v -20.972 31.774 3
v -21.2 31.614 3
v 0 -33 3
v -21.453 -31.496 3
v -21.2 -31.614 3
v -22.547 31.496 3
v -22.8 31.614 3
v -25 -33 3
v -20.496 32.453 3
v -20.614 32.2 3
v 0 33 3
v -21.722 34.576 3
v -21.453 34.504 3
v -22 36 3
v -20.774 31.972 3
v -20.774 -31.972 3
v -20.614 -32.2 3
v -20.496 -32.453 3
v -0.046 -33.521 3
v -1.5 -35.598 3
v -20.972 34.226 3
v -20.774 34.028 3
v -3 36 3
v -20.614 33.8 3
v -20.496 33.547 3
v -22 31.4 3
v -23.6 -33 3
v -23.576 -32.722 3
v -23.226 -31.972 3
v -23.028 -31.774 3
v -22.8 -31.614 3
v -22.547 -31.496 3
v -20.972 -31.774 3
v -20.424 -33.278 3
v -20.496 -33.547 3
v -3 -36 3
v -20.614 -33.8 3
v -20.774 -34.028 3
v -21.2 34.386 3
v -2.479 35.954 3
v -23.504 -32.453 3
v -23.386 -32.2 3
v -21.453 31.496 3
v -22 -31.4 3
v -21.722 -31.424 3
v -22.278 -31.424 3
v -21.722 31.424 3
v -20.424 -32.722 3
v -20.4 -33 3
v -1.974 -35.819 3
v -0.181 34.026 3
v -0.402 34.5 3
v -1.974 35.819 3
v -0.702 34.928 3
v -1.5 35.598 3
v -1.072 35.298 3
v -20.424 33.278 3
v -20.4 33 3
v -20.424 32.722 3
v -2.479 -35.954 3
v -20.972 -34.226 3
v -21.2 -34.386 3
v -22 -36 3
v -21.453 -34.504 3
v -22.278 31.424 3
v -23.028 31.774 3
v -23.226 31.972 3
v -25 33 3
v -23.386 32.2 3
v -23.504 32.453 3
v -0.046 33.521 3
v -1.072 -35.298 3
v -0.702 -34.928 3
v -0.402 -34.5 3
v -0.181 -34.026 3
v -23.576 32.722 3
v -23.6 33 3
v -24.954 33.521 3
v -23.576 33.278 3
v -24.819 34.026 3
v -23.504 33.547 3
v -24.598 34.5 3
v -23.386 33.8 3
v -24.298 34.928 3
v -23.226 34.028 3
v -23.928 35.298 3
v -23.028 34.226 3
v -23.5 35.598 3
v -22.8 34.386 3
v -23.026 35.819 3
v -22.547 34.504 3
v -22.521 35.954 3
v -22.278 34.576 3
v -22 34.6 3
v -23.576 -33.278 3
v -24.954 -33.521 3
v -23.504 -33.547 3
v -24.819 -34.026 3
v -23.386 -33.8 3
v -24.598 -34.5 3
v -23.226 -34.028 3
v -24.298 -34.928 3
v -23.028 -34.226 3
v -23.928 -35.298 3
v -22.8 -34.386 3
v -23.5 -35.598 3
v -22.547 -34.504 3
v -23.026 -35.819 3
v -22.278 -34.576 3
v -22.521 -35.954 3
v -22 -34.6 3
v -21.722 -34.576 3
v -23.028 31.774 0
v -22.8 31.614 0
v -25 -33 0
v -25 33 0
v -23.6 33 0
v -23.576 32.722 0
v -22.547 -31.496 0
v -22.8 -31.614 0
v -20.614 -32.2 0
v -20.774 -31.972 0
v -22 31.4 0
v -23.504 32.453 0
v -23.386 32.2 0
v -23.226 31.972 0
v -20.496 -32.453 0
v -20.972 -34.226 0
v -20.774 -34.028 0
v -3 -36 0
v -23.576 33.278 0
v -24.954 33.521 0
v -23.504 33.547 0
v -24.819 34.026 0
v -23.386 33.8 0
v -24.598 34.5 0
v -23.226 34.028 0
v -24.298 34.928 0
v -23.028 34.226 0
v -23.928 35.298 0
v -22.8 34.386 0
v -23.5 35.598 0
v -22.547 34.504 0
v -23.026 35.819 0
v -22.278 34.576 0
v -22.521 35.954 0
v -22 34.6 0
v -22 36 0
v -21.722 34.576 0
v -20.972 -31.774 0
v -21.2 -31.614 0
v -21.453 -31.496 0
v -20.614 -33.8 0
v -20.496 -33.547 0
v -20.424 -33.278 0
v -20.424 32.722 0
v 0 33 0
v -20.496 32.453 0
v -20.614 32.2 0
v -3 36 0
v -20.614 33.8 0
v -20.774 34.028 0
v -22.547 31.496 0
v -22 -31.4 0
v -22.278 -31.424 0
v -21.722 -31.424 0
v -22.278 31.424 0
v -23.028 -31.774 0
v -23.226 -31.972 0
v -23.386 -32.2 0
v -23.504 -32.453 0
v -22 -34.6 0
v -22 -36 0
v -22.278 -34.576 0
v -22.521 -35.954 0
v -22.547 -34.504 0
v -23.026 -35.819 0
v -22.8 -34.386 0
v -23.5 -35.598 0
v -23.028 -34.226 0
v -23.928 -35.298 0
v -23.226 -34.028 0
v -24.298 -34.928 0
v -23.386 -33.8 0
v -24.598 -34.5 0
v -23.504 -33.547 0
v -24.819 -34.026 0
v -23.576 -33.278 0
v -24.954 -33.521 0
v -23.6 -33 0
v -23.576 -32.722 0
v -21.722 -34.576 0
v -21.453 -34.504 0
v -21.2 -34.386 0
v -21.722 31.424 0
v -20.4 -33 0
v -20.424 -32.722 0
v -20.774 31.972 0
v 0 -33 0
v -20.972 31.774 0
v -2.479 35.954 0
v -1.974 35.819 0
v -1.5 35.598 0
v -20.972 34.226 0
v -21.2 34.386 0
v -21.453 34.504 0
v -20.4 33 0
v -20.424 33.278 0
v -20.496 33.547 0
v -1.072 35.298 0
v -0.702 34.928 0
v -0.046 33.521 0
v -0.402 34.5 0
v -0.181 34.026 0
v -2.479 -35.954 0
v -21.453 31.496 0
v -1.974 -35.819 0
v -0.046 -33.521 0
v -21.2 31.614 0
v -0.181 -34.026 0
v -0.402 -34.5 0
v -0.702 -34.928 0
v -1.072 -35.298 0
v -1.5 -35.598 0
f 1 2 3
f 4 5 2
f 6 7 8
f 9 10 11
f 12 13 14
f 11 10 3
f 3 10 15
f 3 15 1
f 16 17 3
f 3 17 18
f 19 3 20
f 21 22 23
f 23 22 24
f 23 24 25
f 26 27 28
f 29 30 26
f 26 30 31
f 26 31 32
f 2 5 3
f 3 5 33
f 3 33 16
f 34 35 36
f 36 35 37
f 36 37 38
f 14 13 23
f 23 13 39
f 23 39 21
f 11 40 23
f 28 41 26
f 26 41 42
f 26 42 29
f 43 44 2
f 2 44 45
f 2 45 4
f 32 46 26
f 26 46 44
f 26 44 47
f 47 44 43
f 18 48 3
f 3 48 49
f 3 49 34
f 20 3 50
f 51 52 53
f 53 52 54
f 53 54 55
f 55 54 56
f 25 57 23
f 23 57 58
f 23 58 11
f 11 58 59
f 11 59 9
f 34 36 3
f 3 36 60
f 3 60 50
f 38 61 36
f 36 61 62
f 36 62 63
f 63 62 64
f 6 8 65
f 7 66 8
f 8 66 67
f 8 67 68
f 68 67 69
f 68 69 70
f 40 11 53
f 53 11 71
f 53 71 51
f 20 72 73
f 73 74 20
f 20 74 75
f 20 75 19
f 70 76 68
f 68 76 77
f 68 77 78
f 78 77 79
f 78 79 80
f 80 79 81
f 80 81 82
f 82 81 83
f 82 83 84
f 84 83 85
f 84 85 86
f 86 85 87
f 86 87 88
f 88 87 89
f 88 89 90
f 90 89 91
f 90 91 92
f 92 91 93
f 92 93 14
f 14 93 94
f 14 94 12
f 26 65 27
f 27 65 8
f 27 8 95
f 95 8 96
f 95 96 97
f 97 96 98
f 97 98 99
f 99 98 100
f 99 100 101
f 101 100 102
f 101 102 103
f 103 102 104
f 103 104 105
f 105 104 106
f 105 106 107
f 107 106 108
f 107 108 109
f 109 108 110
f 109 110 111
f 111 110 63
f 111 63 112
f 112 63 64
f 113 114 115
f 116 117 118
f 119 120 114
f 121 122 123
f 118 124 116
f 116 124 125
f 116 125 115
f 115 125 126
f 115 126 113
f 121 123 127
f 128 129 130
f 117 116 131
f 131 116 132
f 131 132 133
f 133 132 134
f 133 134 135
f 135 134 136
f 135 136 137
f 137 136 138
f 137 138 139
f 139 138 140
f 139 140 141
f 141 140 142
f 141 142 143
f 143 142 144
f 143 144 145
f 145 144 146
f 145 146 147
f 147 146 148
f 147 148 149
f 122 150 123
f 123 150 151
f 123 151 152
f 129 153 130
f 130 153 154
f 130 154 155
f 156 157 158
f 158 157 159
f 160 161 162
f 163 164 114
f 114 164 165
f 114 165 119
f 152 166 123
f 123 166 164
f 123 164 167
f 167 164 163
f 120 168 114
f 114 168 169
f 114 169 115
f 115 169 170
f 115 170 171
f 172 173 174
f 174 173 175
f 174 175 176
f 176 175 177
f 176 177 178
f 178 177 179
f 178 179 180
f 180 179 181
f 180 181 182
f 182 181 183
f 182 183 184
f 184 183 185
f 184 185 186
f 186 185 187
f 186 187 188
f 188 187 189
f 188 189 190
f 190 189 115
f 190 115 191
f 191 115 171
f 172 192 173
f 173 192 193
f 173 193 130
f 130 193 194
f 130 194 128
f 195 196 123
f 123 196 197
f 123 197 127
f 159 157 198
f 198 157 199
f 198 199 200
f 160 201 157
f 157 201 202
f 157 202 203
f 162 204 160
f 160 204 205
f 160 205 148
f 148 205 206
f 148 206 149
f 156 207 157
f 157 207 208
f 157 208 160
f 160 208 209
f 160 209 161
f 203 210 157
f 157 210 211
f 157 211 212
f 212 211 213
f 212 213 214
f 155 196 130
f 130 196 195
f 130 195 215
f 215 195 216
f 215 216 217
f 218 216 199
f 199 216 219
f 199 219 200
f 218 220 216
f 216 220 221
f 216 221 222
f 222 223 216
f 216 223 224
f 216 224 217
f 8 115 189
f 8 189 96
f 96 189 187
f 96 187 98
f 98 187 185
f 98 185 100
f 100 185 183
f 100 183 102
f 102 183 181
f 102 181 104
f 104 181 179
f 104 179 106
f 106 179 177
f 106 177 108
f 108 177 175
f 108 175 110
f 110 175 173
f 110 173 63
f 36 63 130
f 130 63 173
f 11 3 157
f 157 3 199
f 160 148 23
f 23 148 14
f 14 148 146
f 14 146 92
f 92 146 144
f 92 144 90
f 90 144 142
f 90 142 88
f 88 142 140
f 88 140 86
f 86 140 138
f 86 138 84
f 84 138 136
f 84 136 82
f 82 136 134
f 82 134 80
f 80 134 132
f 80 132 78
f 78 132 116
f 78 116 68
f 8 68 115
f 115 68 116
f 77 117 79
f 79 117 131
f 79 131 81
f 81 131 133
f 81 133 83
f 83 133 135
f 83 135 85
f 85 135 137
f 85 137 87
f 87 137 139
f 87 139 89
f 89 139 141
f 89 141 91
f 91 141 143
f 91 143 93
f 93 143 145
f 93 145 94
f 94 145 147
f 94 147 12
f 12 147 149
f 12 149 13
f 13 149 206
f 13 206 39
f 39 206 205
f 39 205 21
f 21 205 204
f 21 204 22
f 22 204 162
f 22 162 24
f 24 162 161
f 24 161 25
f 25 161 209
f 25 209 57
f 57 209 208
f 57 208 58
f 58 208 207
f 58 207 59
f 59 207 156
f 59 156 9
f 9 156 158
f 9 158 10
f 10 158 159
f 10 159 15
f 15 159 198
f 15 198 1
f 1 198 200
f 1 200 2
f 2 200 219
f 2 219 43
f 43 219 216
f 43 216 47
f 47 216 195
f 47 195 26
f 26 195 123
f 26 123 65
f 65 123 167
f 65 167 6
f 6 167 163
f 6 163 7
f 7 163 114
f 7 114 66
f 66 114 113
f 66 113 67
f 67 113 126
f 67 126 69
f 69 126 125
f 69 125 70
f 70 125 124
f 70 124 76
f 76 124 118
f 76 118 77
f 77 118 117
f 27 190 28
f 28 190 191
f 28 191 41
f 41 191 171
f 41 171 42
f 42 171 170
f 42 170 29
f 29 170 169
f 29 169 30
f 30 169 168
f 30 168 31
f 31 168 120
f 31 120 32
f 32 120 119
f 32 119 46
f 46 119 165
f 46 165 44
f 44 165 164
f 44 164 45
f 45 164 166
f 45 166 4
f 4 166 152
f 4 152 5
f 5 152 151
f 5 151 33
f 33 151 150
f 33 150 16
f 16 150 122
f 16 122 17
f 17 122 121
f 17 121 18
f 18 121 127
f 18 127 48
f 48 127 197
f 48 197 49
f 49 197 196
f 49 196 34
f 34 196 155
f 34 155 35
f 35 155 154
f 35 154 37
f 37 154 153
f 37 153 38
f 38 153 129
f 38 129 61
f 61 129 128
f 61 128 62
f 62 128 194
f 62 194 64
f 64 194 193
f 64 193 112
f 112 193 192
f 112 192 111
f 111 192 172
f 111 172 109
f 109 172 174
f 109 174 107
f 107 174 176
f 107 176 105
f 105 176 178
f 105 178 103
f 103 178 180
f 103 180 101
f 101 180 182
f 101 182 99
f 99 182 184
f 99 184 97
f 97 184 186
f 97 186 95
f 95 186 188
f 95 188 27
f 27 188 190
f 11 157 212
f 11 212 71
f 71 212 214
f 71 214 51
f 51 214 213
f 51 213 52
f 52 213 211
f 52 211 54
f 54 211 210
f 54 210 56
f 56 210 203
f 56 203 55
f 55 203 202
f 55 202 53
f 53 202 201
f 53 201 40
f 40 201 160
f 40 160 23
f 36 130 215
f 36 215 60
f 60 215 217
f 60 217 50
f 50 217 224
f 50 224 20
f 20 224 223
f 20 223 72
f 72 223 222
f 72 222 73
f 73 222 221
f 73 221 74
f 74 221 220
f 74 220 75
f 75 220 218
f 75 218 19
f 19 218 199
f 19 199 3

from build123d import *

# Parameters (mm, degrees)
SKETCH1_R           = 1.6
BOSS_EXTRUDE1_DEPTH = 3
FILLET1_R           = 3


with BuildPart() as part:
    # Sketch1 → Boss-Extrude1 (new body)
    with BuildSketch(Plane.XY):
        with BuildLine():
            Line((0, 36), (0, -36))
            Line((0, -36), (-22, -36))
            ThreePointArc((-22, -36), (-24.121320344, -35.121320344), (-25, -33))
            Line((-25, -33), (-25, 33))
            ThreePointArc((-25, 33), (-24.121320344, 35.121320344), (-22, 36))
            Line((-22, 36), (0, 36))
        make_face()
        with Locations((-22, 33)):
            Circle(SKETCH1_R, mode=Mode.SUBTRACT)
        with Locations((-22, -33)):
            Circle(SKETCH1_R, mode=Mode.SUBTRACT)
    extrude(amount=BOSS_EXTRUDE1_DEPTH)

    # Fillet1
    fillet1_edges = [part.edges().sort_by_distance(p)[0] for p in [
        (0, 36, 1.5),
        (0, -36, 1.5),
    ]]
    fillet(fillet1_edges, radius=FILLET1_R)


solid = part.part
